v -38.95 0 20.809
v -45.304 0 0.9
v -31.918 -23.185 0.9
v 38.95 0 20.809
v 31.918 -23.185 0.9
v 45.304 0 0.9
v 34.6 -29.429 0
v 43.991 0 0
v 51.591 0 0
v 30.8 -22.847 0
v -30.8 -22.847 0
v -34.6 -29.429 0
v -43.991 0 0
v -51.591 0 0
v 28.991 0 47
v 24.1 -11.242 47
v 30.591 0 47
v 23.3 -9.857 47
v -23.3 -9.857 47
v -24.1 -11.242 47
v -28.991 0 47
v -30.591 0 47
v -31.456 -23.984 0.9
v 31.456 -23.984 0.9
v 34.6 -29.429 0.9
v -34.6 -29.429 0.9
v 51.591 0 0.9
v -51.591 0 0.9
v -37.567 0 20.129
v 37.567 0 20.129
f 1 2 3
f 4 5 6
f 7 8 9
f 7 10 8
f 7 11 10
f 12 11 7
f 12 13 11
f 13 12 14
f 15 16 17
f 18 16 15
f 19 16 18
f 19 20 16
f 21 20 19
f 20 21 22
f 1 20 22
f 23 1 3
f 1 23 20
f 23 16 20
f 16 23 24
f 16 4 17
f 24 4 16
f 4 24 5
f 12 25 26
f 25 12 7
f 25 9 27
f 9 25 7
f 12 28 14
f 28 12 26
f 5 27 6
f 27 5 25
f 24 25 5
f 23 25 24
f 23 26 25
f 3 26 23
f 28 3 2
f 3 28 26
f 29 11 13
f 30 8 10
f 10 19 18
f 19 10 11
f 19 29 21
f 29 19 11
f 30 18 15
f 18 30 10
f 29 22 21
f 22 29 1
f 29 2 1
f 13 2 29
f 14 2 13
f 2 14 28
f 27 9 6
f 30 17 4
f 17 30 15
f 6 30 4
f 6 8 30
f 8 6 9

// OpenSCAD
difference() {
    union(){
         translate([0, 30.5, 0]) cylinder(h=47, r1=63.2, r2=48.2, $fn=6);
         translate([0, 30.5, 0]) cylinder(h=0.9, r=69.2, $fn=6);
    }
    translate([0, 30.5, 0]) cylinder(h=47, r1=61.6, r2=46.6, $fn=6);
    translate([0, 100, 0]) cube(200, center=true);
}
